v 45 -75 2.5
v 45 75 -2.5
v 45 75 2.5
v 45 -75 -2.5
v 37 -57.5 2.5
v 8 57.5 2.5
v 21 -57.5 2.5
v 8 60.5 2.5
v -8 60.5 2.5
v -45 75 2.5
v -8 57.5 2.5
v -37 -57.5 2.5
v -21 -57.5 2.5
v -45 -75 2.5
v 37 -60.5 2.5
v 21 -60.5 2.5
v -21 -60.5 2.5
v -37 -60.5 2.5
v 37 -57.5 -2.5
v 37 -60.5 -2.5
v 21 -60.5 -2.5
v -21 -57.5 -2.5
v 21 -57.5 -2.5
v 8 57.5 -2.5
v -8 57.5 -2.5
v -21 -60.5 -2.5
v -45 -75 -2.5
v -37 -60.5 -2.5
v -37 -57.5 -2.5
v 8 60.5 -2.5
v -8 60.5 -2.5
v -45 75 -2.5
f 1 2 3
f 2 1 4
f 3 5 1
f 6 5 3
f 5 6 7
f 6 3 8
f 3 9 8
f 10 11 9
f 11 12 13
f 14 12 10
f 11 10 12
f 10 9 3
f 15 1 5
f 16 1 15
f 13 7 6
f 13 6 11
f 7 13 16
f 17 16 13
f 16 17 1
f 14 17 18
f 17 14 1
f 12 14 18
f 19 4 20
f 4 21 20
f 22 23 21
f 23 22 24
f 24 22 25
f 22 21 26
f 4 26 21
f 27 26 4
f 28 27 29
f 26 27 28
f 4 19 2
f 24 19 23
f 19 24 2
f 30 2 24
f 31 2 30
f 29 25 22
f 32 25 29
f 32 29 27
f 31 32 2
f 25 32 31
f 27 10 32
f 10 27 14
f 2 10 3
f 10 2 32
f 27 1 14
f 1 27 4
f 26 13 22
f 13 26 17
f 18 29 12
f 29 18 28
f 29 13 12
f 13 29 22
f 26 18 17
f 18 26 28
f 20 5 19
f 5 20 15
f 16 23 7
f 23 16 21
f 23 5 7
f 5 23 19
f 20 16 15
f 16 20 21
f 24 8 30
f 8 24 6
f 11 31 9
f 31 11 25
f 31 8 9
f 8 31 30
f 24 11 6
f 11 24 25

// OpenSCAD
// ========================================
// a 9 x 15 x 0.5 cm plate with three 1.6 x 0.3 cm slots
// NeuroCAD canonical IR; dimensions are millimetres
// ========================================
$fn = 48;

difference() {
  cube(size=[90, 150, 5], center=true);
  translate([-29, -59, 0]) {
    cube(size=[16, 3, 7], center=true);
  }
  translate([29, -59, 0]) {
    cube(size=[16, 3, 7], center=true);
  }
  translate([0, 59, 0]) {
    cube(size=[16, 3, 7], center=true);
  }
}
